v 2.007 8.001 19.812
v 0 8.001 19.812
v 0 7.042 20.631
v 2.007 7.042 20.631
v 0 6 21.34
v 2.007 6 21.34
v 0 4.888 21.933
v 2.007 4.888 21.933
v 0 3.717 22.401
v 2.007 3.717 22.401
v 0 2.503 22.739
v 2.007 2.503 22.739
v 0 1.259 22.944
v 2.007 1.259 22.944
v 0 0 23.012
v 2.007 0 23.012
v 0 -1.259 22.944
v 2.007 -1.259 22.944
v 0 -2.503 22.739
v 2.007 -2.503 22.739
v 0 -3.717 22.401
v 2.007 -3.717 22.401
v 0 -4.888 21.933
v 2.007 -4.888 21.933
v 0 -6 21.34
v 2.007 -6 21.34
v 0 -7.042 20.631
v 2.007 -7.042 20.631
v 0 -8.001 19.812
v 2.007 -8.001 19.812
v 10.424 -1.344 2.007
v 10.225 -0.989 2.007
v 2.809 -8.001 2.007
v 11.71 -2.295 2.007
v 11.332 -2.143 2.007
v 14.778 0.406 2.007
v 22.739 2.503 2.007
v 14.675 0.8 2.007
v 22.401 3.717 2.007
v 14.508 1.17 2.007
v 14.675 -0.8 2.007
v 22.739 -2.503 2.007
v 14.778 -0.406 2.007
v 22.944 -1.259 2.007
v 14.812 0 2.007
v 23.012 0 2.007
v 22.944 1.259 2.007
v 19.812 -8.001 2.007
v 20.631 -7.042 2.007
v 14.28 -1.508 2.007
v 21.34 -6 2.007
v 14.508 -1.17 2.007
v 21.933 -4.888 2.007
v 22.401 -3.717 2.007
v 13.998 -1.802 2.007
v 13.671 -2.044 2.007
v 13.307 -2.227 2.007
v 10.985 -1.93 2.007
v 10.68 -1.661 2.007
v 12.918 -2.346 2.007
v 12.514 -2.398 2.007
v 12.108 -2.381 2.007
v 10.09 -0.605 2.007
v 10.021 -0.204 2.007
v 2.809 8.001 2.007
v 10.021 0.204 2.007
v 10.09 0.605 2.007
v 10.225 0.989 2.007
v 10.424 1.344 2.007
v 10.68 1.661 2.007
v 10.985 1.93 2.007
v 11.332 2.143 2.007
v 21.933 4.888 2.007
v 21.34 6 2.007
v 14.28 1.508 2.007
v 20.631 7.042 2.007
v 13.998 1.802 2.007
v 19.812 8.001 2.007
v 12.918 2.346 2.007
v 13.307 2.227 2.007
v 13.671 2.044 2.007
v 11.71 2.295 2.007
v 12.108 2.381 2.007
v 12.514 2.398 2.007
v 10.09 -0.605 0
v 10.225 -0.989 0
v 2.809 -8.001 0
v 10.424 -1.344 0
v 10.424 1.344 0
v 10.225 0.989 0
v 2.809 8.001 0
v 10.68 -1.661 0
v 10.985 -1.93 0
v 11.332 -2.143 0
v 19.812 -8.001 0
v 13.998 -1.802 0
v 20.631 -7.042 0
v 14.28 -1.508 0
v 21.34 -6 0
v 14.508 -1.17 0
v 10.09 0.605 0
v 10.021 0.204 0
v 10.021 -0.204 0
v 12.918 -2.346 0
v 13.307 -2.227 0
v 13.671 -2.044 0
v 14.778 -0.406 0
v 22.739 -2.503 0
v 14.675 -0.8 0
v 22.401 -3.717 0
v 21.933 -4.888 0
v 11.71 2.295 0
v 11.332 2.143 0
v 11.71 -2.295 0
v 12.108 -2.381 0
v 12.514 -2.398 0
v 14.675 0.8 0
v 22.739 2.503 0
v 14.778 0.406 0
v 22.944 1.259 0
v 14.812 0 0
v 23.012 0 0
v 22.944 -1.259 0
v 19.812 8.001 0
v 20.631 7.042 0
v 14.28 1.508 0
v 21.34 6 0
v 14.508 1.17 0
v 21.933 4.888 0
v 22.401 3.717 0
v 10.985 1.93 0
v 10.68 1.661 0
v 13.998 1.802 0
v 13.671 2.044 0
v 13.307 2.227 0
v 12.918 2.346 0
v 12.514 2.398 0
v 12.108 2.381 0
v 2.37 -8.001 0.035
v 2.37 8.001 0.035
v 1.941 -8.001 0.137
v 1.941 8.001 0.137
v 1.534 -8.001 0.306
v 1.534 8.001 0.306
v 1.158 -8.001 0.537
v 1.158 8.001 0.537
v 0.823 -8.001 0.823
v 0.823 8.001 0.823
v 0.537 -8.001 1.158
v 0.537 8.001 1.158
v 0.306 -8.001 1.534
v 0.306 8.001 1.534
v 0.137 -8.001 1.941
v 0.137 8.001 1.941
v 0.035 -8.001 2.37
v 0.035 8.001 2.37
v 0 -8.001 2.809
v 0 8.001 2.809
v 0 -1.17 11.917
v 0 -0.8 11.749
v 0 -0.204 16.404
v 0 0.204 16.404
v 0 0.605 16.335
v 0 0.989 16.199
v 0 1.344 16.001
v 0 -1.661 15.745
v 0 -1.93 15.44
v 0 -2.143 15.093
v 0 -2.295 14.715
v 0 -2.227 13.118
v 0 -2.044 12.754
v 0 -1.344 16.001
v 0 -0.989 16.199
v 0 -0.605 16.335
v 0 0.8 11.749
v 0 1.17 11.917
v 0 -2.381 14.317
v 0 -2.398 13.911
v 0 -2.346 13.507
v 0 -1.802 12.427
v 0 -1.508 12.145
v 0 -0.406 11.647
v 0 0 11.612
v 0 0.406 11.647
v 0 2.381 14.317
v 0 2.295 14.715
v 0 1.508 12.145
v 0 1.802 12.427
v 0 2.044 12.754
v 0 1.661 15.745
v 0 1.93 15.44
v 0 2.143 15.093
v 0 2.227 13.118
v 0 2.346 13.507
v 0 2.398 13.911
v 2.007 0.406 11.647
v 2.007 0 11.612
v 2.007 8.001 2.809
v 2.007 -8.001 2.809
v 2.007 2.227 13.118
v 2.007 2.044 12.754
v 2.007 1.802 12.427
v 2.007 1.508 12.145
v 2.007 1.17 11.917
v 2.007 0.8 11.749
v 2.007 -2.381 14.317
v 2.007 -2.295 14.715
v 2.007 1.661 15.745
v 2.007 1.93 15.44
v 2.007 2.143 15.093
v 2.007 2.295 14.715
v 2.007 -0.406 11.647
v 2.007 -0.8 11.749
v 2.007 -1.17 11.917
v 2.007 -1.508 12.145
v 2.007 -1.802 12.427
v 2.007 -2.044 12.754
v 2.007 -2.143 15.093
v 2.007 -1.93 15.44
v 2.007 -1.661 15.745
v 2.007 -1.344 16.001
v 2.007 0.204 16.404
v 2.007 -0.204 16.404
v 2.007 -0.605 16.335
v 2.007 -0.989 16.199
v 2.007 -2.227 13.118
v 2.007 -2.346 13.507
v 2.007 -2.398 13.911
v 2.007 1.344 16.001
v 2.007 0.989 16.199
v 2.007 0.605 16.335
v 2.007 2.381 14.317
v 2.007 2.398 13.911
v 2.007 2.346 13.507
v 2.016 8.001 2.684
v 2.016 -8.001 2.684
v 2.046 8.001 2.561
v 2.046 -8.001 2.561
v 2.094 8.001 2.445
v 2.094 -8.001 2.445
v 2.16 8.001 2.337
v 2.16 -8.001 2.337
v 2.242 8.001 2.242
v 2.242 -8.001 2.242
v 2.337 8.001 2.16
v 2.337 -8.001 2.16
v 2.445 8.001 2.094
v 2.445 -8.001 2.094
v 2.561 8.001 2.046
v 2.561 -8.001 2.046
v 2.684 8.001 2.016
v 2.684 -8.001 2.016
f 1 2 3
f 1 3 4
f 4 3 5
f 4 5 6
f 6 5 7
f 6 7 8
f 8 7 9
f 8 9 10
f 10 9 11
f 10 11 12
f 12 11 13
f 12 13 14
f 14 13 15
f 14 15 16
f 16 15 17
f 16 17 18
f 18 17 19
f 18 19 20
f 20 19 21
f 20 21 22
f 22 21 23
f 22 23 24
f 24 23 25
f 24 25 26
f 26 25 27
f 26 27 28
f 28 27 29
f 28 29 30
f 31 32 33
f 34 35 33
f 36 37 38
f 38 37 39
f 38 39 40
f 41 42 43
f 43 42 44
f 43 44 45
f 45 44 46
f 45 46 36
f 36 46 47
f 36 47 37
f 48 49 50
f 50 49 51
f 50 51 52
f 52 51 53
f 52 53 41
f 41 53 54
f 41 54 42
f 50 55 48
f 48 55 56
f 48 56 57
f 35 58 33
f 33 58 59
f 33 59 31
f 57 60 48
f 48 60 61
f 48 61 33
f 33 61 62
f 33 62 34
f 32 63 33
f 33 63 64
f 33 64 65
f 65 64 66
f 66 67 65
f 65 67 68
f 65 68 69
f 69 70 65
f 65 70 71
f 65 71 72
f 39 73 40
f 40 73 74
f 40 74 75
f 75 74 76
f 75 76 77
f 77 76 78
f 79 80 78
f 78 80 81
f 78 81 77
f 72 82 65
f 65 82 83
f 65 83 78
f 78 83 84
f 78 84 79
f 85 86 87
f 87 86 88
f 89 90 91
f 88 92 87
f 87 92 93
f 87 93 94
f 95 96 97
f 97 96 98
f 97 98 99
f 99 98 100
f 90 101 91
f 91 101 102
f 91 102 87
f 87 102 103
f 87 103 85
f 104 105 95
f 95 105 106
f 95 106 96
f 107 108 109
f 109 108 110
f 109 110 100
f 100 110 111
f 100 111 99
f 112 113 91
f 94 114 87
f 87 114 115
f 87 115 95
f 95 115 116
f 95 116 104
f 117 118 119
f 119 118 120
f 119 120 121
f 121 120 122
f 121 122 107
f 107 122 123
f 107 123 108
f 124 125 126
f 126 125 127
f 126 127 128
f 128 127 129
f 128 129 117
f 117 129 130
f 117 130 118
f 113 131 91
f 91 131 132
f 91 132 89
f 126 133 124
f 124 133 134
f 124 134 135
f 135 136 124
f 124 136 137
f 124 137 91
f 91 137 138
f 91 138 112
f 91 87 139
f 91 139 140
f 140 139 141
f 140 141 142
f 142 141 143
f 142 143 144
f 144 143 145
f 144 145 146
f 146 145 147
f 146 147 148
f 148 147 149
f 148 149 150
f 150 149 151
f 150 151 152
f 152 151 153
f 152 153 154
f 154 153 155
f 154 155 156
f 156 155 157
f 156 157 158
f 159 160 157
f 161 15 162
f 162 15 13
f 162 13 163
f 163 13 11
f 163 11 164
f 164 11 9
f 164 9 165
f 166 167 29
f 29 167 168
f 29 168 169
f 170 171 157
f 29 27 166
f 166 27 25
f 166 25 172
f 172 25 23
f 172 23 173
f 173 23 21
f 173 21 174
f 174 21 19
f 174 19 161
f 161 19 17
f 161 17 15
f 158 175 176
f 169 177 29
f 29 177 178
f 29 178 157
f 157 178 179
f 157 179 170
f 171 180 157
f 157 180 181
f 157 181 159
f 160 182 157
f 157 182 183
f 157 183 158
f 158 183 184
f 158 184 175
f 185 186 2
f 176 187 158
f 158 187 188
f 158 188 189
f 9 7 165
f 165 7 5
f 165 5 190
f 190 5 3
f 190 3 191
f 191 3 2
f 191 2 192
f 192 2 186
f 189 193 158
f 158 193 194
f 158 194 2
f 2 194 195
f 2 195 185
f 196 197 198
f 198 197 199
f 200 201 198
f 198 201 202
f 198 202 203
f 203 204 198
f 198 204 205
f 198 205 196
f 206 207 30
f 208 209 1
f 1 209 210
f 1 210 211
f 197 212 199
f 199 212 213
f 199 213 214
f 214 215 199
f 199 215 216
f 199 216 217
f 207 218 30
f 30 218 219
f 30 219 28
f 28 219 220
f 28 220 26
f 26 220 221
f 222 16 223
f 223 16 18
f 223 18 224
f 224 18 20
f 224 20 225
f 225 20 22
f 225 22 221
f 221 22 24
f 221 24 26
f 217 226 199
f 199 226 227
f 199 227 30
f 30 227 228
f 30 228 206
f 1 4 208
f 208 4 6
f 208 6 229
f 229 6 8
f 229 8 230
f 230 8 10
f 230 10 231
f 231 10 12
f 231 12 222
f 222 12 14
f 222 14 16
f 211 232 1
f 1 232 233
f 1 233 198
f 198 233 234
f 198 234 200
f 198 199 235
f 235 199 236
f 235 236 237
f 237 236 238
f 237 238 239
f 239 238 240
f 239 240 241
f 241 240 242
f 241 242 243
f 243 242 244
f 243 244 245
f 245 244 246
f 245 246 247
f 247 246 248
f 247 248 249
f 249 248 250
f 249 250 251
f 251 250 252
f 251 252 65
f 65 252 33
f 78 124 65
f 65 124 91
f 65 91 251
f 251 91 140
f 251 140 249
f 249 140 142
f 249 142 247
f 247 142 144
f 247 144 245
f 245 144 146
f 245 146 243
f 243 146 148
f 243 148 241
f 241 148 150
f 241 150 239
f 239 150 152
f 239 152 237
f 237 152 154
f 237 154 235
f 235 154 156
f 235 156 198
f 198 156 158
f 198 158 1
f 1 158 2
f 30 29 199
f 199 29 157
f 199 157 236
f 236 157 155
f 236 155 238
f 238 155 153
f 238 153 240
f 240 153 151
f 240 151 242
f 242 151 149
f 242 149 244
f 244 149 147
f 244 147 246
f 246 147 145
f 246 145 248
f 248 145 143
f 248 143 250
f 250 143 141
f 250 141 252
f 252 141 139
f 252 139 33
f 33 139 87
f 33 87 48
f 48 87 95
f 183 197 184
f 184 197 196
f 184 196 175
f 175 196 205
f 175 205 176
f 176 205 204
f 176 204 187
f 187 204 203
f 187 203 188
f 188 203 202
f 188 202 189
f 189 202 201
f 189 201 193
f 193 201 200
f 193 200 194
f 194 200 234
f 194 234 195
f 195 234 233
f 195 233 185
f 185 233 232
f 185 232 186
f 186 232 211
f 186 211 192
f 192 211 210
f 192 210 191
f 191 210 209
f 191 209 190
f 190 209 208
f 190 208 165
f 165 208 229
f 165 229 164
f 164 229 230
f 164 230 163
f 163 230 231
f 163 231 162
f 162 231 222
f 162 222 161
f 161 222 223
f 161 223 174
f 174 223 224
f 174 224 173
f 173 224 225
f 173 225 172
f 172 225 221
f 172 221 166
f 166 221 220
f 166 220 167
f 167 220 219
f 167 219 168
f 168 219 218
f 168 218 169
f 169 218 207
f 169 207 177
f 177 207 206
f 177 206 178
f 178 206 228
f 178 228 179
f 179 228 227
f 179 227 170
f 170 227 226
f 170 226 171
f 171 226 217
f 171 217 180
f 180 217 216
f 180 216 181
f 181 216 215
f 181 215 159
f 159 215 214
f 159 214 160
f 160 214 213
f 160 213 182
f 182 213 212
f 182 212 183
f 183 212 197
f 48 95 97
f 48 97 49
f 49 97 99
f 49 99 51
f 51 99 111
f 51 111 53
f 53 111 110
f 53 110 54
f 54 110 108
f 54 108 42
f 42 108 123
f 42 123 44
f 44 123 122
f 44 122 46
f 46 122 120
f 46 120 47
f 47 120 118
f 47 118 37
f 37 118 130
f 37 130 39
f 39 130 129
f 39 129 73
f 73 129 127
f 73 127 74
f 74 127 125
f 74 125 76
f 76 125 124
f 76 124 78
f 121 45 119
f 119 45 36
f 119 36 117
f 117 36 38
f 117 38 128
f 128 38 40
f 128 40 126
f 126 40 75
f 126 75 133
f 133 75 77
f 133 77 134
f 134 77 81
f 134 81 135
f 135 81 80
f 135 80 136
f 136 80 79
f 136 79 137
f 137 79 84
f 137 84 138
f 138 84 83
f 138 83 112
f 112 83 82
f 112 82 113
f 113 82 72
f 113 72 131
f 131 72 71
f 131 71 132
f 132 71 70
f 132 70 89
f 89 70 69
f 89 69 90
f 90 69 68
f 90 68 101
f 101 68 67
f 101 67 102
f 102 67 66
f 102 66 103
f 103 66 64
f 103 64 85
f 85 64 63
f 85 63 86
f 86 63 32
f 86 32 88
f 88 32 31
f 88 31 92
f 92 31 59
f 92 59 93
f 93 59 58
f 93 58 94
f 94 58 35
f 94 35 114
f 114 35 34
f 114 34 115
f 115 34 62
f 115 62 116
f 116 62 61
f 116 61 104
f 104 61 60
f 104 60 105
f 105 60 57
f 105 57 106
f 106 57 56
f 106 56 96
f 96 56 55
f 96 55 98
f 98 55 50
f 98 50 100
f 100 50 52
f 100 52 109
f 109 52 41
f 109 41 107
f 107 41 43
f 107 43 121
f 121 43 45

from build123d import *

# Parameters (mm, degrees)
EXTRUDE_THIN1_DEPTH     = 8.001
CUT_EXTRUDE1_DEPTH      = 22.0058
CUT_EXTRUDE1_DEPTH_BACK = 3.0066
SKETCH7_R               = 2.4
CUT_EXTRUDE3_DEPTH      = 3.0066
CUT_EXTRUDE2_DEPTH      = 22.0058
CUT_EXTRUDE2_DEPTH_BACK = 3.0066
SKETCH8_R               = 2.4
CUT_EXTRUDE4_DEPTH      = 3.0066


with BuildPart() as part:
    # Sketch4 → Extrude-Thin1 (new body, symmetric)
    with BuildSketch(Plane(origin=(0, 0, 0), x_dir=(1, 0, 0), z_dir=(0, 1, 0))):
        with BuildLine():
            Line((23.0124, 0), (2.80924, 0))
            ThreePointArc((2.80924, 0), (0.822807346, -0.822807346), (0, -2.80924))
            Line((0, -2.80924), (0, -23.0124))
            Line((0, -23.0124), (2.0066, -23.0124))
            Line((2.0066, -23.0124), (2.0066, -2.80924))
            ThreePointArc((2.0066, -2.80924), (2.241687813, -2.241687813), (2.80924, -2.0066))
            Line((2.80924, -2.0066), (23.0124, -2.0066))
            Line((23.0124, -2.0066), (23.0124, 0))
        make_face()
    extrude(amount=EXTRUDE_THIN1_DEPTH, both=True)

    # Sketch5 → Cut-Extrude1 (cut, two sides)
    with BuildSketch(Plane(origin=(2.0066, 0, 0), x_dir=(0, 0, -1), z_dir=(1, 0, 0))) as cut_extrude1_sk:
        with BuildLine():
            Line((22.211753172, 52.125940831), (-19.812, 8.001))
            ThreePointArc((-19.812, 8.001), (-23.0124, 0), (-19.812, -8.001))
            Line((-19.812, -8.001), (22.211753172, -52.125940831))
            Line((22.211753172, -52.125940831), (-99.657131027, -52.125940831))
            Line((-99.657131027, -52.125940831), (-99.657131027, 52.125940831))
            Line((-99.657131027, 52.125940831), (22.211753172, 52.125940831))
        make_face()
    extrude(amount=CUT_EXTRUDE1_DEPTH, mode=Mode.SUBTRACT)
    extrude(cut_extrude1_sk.sketch, amount=-CUT_EXTRUDE1_DEPTH_BACK, mode=Mode.SUBTRACT)

    # Sketch7 → Cut-Extrude3 (cut, through all)
    with BuildSketch(Plane(origin=(2.0066, 0, 0), x_dir=(0, 0, -1), z_dir=(1, 0, 0))):
        with Locations((-14.0124, 0)):
            Circle(SKETCH7_R)
    extrude(amount=-CUT_EXTRUDE3_DEPTH, mode=Mode.SUBTRACT)

    # Sketch6 → Cut-Extrude2 (cut, two sides)
    with BuildSketch(Plane.XY.offset(2.0066)) as cut_extrude2_sk:
        with BuildLine():
            Line((-22.211753172, -52.125940831), (19.812, -8.001))
            ThreePointArc((19.812, -8.001), (23.0124, 0), (19.812, 8.001))
            Line((19.812, 8.001), (-22.211753172, 52.125940831))
            Line((-22.211753172, 52.125940831), (99.657131027, 52.125940831))
            Line((99.657131027, 52.125940831), (99.657131027, -52.125940831))
            Line((99.657131027, -52.125940831), (-22.211753172, -52.125940831))
        make_face()
    extrude(amount=CUT_EXTRUDE2_DEPTH, mode=Mode.SUBTRACT)
    extrude(cut_extrude2_sk.sketch, amount=-CUT_EXTRUDE2_DEPTH_BACK, mode=Mode.SUBTRACT)

    # Sketch8 → Cut-Extrude4 (cut, through all)
    with BuildSketch(Plane.XY.offset(2.0066)):
        with Locations((12.4124, 0)):
            Circle(SKETCH8_R)
    extrude(amount=-CUT_EXTRUDE4_DEPTH, mode=Mode.SUBTRACT)


solid = part.part
